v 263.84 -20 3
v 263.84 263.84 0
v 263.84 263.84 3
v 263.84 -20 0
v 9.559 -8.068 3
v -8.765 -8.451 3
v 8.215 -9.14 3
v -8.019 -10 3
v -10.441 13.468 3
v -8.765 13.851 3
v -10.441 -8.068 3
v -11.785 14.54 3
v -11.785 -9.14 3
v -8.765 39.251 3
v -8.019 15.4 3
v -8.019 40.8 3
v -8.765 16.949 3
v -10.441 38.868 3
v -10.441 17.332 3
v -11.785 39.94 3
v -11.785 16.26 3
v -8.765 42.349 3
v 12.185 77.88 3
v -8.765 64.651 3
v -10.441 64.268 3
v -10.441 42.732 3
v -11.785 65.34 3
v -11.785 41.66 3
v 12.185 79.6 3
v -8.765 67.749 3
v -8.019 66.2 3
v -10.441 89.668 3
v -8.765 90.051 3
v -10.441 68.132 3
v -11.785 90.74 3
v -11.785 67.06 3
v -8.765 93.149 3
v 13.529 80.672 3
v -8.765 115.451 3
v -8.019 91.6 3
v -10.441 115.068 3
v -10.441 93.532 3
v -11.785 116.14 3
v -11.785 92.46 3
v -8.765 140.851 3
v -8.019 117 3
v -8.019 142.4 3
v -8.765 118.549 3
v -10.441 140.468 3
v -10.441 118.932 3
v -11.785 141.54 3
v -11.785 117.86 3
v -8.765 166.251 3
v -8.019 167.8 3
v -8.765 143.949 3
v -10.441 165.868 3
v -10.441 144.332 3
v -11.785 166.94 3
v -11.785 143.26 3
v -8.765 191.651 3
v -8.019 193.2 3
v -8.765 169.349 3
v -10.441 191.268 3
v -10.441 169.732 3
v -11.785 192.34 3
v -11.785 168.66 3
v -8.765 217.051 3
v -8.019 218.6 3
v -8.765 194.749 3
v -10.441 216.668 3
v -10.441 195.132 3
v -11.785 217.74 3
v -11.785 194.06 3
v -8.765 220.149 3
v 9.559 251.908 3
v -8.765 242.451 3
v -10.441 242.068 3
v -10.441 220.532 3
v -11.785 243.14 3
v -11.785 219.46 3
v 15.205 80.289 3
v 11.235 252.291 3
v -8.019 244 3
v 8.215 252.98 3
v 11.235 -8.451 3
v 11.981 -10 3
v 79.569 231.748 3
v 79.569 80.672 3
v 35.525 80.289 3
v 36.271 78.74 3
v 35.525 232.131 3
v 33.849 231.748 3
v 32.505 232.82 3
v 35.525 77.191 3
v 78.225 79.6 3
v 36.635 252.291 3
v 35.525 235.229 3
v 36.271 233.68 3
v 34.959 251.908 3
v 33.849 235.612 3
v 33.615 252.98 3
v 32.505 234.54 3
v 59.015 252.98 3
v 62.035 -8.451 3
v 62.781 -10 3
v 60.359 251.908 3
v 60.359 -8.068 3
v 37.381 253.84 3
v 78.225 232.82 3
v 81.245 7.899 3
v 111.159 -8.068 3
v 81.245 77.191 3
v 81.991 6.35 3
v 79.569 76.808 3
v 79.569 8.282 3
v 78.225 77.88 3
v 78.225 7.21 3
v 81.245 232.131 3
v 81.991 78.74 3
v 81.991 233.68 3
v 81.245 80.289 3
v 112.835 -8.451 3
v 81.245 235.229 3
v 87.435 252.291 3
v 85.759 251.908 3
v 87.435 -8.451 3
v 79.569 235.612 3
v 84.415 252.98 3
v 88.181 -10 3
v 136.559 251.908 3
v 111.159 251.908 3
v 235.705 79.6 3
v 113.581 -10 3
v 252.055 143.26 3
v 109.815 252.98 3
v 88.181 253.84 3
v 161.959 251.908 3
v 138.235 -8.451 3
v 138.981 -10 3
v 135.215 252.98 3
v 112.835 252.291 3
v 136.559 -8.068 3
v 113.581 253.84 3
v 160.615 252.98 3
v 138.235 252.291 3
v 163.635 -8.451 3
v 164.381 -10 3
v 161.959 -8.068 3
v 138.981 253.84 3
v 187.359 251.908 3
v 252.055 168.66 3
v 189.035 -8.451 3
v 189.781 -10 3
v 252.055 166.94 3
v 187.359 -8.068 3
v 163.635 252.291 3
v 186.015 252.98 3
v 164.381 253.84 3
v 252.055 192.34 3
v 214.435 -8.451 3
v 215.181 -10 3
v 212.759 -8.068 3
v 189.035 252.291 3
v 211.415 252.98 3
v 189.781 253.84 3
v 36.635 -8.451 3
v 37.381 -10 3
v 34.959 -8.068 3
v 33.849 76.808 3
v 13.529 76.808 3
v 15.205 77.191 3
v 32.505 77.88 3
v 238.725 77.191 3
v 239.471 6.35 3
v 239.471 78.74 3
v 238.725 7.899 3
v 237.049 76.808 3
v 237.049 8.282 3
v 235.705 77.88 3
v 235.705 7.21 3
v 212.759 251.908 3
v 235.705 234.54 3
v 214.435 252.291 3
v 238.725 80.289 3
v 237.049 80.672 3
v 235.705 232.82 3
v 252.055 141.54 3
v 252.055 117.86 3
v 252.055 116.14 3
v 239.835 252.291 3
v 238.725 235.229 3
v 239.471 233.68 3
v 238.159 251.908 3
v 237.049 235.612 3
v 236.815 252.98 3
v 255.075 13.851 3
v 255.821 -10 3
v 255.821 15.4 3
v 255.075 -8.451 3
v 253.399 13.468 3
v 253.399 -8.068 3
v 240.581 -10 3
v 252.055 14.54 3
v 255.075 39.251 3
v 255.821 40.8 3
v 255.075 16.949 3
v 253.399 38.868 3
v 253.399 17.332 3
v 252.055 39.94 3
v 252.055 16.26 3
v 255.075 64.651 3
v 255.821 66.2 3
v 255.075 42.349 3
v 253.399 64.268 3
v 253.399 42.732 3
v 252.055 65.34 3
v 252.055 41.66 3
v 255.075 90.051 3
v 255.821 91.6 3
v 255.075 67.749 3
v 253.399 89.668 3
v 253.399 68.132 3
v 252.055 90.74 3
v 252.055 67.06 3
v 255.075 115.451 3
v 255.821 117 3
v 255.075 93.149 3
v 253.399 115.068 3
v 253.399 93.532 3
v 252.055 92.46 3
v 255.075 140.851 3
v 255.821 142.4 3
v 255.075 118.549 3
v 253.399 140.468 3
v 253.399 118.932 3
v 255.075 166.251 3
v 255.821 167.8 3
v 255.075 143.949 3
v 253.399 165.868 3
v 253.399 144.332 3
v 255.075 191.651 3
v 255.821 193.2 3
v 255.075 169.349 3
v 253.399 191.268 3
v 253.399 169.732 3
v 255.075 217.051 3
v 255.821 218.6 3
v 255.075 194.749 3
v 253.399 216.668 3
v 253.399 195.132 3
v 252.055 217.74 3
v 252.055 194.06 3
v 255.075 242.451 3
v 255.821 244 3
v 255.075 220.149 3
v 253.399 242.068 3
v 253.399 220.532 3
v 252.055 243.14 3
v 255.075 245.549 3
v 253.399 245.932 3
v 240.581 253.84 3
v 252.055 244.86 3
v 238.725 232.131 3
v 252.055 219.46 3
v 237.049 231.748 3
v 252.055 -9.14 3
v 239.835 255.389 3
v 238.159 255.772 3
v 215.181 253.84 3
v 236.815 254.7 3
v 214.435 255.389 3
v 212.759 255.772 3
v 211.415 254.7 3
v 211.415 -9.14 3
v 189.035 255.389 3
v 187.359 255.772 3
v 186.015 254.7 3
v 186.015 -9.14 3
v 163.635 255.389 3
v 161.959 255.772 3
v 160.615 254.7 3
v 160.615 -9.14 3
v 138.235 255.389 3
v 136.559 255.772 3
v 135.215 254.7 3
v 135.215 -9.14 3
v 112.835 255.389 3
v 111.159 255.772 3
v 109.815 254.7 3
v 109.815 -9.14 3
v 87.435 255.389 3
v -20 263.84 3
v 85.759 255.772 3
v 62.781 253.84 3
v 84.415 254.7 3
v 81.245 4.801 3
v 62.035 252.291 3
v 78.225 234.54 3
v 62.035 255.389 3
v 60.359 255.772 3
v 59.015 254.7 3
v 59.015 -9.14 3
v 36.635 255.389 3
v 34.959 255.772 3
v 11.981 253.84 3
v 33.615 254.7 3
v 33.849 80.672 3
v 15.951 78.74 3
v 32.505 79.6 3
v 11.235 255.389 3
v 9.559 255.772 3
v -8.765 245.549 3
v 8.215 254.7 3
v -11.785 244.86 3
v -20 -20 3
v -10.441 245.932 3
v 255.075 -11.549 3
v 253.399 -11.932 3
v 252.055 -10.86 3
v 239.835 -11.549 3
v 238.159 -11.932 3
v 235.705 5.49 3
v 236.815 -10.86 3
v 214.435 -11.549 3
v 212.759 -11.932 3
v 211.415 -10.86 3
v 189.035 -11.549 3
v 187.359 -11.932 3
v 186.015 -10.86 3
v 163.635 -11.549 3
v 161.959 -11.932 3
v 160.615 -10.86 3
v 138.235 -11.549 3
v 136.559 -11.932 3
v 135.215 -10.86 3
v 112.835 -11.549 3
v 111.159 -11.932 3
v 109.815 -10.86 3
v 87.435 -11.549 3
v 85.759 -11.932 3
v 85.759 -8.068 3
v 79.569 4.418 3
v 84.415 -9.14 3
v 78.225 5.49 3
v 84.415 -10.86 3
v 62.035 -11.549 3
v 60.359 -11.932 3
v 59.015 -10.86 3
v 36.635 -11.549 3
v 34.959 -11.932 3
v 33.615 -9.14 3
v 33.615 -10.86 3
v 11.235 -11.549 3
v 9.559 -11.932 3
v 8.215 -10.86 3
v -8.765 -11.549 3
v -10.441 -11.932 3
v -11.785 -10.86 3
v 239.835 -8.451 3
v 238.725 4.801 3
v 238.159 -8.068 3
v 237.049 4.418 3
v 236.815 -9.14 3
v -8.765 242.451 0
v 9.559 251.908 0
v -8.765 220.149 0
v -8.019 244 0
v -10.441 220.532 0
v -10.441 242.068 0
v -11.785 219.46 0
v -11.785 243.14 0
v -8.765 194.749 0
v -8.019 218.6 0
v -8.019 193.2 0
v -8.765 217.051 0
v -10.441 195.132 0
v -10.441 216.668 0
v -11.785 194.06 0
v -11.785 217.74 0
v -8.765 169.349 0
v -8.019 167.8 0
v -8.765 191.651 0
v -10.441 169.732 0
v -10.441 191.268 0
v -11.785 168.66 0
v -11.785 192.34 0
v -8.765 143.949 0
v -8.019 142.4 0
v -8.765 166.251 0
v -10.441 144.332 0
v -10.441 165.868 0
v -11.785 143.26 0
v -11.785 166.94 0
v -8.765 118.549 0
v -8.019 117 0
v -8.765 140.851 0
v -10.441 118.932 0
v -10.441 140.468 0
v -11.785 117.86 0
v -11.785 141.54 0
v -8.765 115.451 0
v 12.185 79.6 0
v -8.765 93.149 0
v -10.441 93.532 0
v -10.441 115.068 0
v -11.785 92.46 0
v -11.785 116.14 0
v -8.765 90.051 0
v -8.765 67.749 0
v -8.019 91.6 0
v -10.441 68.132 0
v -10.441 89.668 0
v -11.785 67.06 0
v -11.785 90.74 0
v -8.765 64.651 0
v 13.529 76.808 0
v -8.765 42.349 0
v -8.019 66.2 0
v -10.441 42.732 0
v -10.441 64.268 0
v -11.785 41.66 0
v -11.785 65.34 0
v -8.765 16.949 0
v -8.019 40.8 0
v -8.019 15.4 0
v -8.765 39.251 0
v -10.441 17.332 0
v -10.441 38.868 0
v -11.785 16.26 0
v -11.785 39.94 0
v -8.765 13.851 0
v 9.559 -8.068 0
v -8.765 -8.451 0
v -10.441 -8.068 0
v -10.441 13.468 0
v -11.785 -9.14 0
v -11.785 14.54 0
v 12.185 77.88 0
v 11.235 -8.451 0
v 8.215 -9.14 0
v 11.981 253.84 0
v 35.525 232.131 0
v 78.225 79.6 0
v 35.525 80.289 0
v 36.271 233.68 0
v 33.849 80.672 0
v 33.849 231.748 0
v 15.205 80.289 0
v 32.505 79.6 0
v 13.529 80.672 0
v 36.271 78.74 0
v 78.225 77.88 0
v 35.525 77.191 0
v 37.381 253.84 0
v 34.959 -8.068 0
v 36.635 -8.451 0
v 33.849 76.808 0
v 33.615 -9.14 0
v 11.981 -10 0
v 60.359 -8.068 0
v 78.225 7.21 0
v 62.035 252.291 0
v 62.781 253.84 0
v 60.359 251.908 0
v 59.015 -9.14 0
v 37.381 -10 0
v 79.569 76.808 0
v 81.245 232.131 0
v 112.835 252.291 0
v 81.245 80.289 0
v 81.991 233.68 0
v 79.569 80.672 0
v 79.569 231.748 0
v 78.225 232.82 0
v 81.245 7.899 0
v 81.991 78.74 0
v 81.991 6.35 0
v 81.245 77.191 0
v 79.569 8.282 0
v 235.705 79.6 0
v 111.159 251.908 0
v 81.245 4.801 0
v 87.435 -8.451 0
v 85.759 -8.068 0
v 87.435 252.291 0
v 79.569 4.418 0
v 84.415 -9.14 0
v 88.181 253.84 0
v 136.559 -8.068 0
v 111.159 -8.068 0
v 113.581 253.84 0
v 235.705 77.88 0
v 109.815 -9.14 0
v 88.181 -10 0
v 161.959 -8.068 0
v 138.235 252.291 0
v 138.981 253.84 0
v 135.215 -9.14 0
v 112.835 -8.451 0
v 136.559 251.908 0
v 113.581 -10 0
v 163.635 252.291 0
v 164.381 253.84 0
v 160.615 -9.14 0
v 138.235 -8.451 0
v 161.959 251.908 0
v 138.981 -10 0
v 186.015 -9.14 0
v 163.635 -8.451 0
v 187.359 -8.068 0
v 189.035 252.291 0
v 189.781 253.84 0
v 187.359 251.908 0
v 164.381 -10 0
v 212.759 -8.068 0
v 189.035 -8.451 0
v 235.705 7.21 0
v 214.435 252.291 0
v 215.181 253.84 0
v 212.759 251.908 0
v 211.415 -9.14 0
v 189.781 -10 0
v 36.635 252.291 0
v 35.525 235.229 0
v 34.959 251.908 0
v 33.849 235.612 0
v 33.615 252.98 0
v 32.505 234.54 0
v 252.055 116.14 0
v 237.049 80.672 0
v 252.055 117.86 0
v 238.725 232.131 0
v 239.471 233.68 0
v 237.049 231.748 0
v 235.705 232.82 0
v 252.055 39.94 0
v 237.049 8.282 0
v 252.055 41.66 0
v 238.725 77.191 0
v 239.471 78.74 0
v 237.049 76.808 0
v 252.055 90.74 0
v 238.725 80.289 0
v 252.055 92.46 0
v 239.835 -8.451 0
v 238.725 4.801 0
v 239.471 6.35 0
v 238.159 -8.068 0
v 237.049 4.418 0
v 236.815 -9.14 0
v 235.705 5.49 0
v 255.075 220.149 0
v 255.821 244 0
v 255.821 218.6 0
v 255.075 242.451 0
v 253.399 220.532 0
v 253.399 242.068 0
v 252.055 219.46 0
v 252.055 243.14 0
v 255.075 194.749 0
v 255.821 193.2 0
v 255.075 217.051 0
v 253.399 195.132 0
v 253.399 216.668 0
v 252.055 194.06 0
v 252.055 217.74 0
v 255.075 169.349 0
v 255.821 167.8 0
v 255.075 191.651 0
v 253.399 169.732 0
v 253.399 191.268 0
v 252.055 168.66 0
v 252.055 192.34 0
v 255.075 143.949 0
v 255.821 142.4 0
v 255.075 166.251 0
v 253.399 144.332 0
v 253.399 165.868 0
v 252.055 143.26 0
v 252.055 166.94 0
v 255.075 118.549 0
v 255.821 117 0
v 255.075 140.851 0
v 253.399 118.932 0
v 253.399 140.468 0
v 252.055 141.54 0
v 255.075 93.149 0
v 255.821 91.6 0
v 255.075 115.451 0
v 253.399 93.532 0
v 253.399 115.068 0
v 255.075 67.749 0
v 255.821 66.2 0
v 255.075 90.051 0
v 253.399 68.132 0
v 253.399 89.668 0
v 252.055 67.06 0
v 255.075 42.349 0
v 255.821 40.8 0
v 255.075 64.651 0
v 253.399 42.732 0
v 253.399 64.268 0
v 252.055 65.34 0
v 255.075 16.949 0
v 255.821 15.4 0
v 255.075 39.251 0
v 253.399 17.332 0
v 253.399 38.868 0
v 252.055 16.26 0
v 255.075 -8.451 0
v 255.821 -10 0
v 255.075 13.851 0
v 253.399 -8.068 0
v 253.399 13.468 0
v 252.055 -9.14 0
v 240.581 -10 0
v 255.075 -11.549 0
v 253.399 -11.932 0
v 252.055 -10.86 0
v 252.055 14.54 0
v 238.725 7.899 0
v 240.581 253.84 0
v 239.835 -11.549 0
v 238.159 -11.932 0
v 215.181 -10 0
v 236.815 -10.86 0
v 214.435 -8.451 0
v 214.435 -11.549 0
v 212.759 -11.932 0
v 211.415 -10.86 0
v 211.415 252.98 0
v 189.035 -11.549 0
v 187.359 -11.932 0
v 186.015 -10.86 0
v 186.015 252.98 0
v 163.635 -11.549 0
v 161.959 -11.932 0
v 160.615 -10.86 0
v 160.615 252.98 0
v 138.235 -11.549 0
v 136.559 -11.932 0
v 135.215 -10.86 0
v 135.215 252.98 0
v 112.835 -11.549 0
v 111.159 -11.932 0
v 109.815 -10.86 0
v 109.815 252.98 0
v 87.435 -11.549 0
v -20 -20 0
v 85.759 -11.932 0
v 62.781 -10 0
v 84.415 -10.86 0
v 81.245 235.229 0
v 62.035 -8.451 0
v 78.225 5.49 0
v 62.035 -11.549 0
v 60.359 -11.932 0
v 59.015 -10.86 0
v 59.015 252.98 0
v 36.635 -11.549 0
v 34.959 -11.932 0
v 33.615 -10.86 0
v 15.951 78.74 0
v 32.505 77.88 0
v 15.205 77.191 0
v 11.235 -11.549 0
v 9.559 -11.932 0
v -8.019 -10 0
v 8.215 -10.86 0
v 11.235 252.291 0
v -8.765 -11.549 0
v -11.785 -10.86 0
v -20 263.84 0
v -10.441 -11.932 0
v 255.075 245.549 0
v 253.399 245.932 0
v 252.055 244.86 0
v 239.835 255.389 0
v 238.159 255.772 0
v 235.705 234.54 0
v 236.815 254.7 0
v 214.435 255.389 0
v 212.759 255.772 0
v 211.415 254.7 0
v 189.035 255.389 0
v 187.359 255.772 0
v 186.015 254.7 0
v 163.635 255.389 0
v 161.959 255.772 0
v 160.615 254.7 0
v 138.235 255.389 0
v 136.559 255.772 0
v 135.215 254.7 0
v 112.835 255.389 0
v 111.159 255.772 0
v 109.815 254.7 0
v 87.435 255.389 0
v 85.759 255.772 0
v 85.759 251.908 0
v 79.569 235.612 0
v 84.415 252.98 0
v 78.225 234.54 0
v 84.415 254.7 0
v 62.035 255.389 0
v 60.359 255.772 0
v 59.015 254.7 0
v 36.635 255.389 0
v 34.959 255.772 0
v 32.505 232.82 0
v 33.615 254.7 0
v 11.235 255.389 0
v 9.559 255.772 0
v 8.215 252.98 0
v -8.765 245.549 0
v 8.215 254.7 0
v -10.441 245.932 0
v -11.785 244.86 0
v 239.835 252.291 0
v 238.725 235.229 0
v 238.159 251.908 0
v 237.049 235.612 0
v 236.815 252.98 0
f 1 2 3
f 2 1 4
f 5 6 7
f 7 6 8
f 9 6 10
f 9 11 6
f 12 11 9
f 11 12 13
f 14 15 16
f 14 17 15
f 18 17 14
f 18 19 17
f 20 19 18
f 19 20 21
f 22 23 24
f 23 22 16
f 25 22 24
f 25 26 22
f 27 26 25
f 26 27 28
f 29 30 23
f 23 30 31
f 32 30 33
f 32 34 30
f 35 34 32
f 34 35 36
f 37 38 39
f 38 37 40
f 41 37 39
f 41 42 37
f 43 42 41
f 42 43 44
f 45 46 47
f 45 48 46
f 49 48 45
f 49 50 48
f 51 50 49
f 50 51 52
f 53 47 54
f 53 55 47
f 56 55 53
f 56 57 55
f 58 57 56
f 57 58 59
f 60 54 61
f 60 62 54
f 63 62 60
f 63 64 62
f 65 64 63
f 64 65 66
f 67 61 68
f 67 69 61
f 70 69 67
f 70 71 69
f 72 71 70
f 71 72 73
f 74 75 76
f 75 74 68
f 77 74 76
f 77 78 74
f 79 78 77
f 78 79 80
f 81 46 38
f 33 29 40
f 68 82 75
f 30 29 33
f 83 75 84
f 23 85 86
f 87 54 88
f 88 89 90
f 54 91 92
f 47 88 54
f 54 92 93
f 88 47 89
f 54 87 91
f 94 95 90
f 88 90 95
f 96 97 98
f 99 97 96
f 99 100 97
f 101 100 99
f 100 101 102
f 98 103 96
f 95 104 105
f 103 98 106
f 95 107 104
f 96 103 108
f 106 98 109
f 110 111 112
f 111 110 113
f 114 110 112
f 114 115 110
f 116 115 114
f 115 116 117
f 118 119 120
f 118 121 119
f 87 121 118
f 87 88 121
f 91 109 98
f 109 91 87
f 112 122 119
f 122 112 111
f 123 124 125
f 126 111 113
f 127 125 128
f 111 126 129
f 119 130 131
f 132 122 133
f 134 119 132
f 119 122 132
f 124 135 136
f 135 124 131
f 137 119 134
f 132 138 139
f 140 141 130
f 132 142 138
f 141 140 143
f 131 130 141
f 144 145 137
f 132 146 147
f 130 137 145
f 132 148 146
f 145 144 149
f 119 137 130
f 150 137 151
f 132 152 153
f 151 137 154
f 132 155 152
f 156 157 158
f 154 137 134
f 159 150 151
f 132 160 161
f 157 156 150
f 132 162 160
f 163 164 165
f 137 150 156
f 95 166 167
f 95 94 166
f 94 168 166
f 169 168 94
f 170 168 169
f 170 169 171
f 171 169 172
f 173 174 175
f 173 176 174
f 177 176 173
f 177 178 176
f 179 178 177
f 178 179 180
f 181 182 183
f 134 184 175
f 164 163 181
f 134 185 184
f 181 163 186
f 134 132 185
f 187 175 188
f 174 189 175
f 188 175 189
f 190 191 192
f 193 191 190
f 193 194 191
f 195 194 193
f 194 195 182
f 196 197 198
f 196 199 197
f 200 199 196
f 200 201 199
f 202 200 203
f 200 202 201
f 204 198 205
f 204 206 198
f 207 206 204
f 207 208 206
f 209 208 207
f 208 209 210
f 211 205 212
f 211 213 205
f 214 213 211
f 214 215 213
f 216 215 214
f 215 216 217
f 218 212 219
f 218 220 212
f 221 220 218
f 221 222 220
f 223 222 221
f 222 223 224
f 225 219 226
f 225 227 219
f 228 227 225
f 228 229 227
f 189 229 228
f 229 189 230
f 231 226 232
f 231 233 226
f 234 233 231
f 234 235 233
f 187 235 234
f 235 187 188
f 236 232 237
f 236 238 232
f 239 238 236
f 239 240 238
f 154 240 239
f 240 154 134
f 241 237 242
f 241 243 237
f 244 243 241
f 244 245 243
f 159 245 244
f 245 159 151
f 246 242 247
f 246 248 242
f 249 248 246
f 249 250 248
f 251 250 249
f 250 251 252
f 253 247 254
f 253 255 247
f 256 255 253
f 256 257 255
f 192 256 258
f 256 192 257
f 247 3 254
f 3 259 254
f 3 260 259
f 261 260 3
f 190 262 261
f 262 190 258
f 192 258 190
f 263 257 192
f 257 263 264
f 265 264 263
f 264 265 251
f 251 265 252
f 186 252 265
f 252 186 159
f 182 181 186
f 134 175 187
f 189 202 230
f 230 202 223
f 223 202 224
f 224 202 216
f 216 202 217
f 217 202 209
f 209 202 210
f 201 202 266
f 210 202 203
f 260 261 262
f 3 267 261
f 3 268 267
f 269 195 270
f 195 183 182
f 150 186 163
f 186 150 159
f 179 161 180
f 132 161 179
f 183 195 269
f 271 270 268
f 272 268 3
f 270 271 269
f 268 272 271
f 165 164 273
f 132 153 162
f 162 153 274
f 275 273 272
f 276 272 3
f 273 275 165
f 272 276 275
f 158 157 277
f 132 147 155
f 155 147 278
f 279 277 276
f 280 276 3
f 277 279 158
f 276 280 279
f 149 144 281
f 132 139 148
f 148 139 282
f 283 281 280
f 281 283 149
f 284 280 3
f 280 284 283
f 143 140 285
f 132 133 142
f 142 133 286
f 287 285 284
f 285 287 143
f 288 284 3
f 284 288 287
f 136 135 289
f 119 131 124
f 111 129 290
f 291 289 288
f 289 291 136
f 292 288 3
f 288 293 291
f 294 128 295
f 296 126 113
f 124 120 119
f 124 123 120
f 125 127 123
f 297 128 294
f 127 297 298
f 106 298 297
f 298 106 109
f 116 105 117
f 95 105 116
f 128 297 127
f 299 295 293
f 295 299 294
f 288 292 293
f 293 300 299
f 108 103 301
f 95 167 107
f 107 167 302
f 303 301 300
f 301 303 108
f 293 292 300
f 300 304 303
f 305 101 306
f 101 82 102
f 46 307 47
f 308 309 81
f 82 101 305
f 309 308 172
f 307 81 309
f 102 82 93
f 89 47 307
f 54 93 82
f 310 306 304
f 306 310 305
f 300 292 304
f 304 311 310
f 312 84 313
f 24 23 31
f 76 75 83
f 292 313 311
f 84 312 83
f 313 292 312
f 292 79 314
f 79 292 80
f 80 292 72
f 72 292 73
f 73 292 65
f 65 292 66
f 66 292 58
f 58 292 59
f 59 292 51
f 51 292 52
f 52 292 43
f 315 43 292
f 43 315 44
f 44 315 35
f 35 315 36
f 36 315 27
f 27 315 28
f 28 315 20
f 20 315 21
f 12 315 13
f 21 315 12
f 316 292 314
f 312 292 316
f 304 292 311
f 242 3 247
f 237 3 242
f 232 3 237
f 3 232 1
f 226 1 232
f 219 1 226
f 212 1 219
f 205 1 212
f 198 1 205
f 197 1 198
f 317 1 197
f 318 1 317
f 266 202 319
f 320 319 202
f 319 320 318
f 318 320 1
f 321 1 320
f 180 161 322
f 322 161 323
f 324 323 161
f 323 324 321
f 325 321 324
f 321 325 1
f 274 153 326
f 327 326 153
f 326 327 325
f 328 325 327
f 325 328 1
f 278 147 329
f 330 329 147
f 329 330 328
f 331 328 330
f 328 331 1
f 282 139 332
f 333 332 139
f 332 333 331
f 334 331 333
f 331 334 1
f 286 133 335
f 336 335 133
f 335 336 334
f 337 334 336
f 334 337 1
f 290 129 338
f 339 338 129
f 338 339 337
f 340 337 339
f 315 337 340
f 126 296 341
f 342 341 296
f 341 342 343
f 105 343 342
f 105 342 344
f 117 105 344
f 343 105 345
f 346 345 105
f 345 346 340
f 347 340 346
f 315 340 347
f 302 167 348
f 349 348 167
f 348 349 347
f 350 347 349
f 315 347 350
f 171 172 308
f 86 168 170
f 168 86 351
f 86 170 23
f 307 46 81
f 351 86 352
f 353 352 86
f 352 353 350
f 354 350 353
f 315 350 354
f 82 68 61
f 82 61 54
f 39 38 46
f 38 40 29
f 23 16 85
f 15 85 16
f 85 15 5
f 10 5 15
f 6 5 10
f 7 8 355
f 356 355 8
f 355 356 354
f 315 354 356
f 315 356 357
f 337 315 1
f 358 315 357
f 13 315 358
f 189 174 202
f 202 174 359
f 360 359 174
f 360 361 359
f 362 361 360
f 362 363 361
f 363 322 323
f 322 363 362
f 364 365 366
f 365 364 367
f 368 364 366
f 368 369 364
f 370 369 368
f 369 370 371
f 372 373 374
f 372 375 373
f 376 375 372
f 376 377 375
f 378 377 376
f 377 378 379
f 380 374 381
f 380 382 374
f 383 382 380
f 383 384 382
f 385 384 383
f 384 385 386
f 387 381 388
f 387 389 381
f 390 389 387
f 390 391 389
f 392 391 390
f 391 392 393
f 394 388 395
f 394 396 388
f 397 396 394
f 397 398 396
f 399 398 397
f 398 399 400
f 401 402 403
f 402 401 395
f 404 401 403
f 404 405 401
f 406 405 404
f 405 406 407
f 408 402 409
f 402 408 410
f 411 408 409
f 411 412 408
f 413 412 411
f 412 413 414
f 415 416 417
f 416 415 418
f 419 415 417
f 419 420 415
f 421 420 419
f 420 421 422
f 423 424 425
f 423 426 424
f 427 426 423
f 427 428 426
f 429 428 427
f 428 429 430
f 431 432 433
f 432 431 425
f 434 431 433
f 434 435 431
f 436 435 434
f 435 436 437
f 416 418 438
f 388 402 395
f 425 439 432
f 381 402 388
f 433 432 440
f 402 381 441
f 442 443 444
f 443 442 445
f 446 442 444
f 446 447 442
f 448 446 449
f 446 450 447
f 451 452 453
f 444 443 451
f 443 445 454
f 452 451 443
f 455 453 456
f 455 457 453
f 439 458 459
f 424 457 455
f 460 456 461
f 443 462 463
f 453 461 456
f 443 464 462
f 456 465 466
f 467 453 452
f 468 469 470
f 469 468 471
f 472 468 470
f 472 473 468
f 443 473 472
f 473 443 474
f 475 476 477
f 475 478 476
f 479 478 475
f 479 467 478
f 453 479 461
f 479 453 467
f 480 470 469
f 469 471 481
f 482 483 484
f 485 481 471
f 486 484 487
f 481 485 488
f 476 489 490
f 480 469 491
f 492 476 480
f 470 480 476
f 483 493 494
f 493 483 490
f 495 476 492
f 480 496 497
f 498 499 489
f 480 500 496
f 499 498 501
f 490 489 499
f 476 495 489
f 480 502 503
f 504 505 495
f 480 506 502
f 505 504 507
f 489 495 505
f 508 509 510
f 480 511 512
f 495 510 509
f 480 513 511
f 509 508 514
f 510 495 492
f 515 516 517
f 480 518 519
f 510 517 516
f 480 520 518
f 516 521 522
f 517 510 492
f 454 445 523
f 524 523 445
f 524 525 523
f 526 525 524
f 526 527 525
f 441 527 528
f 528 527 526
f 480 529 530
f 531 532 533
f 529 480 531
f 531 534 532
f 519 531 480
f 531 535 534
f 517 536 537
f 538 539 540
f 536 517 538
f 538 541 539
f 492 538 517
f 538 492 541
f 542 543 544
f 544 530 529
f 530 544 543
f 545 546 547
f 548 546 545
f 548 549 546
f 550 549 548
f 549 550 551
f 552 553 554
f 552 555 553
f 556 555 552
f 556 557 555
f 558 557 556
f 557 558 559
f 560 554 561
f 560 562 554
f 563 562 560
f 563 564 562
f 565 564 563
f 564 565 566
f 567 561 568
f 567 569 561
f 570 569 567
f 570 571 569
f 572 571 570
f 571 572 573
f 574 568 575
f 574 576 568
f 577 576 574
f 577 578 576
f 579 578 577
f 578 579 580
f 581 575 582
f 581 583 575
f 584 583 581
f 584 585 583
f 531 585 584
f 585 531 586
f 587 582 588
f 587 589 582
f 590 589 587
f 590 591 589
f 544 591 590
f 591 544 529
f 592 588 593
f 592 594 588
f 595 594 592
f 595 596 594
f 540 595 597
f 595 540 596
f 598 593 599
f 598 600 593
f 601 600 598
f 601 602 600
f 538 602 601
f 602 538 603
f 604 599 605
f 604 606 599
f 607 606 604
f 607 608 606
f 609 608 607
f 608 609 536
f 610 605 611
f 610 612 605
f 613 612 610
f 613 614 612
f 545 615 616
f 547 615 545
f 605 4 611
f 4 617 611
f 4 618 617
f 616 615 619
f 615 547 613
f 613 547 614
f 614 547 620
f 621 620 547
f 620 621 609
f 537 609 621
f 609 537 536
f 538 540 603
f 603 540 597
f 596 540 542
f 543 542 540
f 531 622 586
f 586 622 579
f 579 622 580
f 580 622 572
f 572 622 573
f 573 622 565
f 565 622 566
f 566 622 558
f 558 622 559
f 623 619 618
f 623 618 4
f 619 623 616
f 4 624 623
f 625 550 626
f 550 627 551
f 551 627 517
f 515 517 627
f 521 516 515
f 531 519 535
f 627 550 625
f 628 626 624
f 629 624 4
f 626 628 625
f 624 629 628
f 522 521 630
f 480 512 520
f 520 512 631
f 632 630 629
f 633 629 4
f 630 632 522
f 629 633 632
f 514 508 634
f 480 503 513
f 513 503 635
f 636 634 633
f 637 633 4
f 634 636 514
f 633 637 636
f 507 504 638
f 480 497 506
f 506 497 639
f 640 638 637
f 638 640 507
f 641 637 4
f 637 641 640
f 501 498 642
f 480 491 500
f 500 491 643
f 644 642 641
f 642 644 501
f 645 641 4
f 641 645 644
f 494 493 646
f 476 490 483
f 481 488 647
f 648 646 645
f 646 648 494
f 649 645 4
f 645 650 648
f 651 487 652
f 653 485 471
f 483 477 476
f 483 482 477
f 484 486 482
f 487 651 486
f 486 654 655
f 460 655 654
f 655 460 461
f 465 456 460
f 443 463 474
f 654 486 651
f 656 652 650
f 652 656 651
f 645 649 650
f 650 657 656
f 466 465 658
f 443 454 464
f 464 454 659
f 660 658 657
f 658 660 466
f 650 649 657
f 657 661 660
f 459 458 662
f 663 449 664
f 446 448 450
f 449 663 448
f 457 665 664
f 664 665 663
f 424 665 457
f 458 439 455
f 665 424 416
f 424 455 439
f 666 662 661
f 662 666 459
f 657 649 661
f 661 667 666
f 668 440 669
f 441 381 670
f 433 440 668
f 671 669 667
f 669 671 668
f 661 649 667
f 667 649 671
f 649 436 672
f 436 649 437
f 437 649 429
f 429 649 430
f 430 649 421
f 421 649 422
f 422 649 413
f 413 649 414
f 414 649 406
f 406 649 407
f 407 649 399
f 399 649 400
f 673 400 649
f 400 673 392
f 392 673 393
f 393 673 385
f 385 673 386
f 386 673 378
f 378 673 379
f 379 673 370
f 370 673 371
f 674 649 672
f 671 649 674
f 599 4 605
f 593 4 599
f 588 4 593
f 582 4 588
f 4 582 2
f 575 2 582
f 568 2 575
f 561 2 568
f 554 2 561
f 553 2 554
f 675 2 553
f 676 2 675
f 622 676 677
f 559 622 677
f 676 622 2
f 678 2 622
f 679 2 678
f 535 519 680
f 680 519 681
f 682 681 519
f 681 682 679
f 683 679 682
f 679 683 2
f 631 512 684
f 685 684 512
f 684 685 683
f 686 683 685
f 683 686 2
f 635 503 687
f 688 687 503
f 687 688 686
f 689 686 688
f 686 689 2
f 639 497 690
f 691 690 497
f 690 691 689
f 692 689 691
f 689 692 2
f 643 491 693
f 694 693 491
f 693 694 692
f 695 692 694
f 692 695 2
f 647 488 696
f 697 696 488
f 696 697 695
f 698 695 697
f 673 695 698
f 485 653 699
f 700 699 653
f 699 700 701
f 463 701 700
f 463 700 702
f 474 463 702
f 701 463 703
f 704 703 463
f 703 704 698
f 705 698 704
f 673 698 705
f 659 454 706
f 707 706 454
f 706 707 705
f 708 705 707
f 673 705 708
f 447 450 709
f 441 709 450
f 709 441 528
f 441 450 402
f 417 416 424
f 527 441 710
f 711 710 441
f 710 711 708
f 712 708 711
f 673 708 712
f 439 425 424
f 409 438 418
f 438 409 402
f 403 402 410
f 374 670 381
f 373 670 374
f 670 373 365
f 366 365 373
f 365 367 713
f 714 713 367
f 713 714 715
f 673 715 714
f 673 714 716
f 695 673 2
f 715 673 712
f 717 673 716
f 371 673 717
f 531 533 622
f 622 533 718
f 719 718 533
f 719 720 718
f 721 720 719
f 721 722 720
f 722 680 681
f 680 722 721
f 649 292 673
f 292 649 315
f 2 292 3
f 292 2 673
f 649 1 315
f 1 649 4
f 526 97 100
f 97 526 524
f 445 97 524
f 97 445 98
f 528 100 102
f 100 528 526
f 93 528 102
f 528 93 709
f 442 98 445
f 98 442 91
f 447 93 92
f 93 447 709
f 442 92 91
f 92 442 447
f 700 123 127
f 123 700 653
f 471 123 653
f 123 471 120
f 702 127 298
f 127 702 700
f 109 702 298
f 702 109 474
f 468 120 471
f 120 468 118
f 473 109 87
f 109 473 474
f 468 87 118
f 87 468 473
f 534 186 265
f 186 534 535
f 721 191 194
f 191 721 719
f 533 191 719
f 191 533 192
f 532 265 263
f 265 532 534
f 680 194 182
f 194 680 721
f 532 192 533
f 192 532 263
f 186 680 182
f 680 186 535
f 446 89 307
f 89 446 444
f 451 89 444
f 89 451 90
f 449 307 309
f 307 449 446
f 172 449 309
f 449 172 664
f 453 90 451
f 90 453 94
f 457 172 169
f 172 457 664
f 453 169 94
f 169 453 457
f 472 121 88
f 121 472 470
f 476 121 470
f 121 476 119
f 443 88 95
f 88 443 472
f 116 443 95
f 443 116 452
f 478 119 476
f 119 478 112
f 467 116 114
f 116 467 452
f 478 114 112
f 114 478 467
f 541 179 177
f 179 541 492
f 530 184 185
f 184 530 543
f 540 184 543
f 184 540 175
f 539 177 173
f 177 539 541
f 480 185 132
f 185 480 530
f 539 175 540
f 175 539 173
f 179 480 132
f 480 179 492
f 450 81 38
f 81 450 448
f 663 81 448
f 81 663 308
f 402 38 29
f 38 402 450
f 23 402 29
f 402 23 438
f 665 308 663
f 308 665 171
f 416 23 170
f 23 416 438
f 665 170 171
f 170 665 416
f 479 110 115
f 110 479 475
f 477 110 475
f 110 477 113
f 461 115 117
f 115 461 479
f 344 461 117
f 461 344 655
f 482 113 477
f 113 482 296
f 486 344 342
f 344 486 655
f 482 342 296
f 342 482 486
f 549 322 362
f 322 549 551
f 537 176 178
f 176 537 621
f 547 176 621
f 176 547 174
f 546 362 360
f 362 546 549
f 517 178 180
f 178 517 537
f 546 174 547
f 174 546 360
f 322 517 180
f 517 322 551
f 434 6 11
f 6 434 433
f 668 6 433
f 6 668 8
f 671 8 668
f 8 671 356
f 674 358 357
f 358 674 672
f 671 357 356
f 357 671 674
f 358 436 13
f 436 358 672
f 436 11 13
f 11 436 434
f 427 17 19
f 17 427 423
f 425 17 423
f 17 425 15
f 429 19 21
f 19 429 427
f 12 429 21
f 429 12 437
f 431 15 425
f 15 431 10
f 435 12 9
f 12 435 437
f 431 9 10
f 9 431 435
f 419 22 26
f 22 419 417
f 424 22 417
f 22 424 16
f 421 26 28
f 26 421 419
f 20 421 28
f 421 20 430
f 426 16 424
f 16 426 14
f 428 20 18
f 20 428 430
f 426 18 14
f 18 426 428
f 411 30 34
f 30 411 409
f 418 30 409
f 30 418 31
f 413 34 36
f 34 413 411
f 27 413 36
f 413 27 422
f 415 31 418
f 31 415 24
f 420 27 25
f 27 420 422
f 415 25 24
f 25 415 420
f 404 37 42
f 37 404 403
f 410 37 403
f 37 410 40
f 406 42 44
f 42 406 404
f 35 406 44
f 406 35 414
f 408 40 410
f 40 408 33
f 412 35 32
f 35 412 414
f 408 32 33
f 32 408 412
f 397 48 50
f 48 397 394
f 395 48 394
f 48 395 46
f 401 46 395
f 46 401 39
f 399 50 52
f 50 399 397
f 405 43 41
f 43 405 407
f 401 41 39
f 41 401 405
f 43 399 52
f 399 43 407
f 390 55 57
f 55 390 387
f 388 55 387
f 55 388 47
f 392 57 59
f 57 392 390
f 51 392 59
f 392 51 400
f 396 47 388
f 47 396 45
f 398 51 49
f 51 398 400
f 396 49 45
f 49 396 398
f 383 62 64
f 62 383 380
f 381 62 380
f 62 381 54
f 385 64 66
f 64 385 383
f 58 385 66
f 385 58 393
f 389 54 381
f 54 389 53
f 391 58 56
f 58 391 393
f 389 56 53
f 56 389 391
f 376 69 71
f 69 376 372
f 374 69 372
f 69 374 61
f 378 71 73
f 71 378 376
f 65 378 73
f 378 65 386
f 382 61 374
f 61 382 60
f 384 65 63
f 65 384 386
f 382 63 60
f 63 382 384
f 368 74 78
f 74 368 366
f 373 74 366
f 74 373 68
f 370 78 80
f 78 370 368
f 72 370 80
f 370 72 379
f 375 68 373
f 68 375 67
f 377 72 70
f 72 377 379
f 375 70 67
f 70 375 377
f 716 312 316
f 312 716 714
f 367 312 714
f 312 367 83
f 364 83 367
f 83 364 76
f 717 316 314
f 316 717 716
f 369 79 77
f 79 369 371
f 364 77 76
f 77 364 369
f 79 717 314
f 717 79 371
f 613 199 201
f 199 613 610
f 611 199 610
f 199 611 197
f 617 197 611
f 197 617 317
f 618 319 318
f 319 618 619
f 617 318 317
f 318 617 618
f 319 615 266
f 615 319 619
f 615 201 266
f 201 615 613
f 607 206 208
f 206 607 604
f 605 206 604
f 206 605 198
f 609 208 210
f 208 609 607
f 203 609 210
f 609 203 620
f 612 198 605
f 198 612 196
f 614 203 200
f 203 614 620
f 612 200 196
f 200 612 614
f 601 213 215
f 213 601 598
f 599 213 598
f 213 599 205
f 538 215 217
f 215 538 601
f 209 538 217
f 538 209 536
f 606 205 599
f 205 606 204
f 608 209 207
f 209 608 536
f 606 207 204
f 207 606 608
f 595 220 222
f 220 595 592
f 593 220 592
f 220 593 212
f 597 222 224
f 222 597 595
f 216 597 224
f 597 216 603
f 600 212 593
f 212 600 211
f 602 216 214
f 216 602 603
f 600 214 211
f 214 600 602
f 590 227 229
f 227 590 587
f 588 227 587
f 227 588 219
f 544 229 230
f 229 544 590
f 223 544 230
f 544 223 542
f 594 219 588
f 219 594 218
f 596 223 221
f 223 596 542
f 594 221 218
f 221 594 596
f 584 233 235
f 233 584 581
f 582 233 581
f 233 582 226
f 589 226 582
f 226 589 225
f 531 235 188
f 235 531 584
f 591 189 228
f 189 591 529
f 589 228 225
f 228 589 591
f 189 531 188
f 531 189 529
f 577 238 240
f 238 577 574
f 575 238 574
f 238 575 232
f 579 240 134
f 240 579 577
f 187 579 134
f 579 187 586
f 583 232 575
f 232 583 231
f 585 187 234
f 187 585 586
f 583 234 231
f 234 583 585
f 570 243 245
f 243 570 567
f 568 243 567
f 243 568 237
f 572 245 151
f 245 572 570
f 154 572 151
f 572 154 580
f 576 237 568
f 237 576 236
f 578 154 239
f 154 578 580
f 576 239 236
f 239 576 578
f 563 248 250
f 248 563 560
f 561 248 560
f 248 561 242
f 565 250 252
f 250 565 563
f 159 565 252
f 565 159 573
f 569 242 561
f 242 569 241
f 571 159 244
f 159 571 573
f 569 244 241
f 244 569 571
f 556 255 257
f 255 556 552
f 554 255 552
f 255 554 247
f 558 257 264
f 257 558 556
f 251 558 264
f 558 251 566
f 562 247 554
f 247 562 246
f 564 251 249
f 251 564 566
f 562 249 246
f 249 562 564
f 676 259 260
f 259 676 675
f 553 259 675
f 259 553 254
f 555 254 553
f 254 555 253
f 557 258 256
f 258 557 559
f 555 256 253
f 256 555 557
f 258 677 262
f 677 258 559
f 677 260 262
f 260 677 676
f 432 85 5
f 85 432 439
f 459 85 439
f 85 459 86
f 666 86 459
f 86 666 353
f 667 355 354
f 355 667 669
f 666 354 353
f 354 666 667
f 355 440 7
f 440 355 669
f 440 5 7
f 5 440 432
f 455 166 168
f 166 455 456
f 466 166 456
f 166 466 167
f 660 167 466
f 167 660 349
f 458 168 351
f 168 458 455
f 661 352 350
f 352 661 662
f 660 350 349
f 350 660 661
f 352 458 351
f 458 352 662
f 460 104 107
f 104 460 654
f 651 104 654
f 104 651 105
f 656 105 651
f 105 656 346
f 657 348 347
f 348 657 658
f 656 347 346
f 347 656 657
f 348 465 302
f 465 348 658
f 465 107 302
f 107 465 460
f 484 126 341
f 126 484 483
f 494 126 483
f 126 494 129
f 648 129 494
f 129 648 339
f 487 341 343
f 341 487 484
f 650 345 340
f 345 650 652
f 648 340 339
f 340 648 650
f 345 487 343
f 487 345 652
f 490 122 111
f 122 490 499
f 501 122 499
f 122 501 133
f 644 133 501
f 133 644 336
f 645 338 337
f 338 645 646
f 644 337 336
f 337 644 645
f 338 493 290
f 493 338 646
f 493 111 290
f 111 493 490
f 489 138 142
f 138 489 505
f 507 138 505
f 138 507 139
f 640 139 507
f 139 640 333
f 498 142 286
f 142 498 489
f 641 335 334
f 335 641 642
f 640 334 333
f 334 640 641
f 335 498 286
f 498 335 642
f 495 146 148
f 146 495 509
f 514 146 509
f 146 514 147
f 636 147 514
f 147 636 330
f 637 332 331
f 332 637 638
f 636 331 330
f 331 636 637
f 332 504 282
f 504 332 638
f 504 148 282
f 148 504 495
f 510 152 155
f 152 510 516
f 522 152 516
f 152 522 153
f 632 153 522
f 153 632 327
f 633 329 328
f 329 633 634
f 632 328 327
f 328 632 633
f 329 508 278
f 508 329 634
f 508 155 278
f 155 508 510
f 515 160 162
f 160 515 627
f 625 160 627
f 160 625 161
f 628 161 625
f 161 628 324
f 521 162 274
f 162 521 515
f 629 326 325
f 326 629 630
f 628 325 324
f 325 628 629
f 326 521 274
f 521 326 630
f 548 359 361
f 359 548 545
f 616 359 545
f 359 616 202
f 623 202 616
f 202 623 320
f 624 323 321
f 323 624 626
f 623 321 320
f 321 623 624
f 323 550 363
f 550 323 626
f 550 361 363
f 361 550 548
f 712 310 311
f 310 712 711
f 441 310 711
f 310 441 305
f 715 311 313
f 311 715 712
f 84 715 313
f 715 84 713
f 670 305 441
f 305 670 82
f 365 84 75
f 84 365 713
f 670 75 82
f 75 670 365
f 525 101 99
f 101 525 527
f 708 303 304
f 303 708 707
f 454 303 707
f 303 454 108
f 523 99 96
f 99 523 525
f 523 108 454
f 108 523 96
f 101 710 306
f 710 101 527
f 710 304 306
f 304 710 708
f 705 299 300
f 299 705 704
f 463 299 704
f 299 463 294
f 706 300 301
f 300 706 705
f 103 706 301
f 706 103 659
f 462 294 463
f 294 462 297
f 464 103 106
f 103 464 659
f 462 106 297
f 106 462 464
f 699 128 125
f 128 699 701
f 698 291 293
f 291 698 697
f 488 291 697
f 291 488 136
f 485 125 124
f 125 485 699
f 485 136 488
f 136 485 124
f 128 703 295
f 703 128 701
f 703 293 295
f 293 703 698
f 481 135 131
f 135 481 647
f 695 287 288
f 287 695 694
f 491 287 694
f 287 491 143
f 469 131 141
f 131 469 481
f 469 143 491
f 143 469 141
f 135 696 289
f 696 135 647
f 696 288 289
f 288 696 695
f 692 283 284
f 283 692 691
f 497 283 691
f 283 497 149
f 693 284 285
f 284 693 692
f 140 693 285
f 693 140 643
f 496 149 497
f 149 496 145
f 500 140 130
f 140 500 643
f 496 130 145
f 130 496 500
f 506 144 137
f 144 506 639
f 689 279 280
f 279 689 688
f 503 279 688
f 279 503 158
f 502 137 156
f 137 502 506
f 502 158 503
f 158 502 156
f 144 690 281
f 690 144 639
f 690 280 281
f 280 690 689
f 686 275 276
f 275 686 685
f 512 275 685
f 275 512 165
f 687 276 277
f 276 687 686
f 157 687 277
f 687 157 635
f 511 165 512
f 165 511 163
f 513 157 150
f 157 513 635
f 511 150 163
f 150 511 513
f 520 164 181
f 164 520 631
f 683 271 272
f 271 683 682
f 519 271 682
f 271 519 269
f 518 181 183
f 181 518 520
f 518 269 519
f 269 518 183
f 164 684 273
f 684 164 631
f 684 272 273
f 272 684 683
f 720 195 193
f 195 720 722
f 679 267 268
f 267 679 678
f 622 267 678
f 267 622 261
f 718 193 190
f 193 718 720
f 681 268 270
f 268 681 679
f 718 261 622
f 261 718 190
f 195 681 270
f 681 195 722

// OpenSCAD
inch = 25.4;
holesize = (0.156 * inch) / 2;
boardsize = 9.6 * inch;
thickness = 3;
holedepth = thickness + 2;

module board(){
    translate([-20,-20,0]) cube([boardsize + 40, boardsize + 40, thickness]);  // to allow for holes around blade
    cube([boardsize, boardsize, thickness]);
}


module side_holes(){
    
    for (i = [-10 : 1 * inch : boardsize + 10]){
         translate([-10, i, -1]) cylinder(r=holesize, h=holedepth);
    }
     for (i = [-10 : 1 * inch : boardsize + 10]){
         translate([boardsize+10, i, -1]) cylinder(r=holesize, h=holedepth);
    }
      for (i = [10 : 1 * inch : boardsize + 10]){
         translate([i, -10, -1]) cylinder(r=holesize, h=holedepth);
    }
      for (i = [10 : 1 * inch : boardsize + 10]){
         translate([i, boardsize+10, -1]) cylinder(r=holesize, h=holedepth);
    }
   
}

module holes(){
    /* Row 1 from back */ 
    translate([1.350 * inch,            boardsize - .400 * inch, -1]) cylinder(r=holesize,h=holedepth);
    translate([1.350 * inch + 1.8 * inch, boardsize - .400 * inch, -1]) cylinder(r=holesize,h=holedepth);
    translate([1.350 * inch + 8   * inch, boardsize - .400 * inch, -1]) cylinder(r=holesize,h=holedepth);
    /* Row 2 */
    translate([1.350 * inch,            boardsize - 6.500 * inch, -1]) cylinder(r=holesize,h=holedepth);
    translate([1.350 * inch + 1.8 * inch, boardsize - 6.500 * inch, -1]) cylinder(r=holesize,h=holedepth);
    translate([1.350 * inch + 8   * inch, boardsize - 6.500 * inch, -1]) cylinder(r=holesize,h=holedepth);
    translate([1.350 * inch - 0.8 * inch,            boardsize - 6.500 * inch, -1]) cylinder(r=holesize,h=holedepth);
    /* Row 3 */
    translate([1.350 * inch + 1.8 * inch, boardsize - 9.35 * inch, -1]) cylinder(r=holesize,h=holedepth);
    translate([1.350 * inch + 8   * inch, boardsize - 9.35 * inch, -1]) cylinder(r=holesize,h=holedepth);
}

module mount_plate(){
    
    difference(){       
        board();
        holes();
        side_holes();
    }
}

mount_plate();
